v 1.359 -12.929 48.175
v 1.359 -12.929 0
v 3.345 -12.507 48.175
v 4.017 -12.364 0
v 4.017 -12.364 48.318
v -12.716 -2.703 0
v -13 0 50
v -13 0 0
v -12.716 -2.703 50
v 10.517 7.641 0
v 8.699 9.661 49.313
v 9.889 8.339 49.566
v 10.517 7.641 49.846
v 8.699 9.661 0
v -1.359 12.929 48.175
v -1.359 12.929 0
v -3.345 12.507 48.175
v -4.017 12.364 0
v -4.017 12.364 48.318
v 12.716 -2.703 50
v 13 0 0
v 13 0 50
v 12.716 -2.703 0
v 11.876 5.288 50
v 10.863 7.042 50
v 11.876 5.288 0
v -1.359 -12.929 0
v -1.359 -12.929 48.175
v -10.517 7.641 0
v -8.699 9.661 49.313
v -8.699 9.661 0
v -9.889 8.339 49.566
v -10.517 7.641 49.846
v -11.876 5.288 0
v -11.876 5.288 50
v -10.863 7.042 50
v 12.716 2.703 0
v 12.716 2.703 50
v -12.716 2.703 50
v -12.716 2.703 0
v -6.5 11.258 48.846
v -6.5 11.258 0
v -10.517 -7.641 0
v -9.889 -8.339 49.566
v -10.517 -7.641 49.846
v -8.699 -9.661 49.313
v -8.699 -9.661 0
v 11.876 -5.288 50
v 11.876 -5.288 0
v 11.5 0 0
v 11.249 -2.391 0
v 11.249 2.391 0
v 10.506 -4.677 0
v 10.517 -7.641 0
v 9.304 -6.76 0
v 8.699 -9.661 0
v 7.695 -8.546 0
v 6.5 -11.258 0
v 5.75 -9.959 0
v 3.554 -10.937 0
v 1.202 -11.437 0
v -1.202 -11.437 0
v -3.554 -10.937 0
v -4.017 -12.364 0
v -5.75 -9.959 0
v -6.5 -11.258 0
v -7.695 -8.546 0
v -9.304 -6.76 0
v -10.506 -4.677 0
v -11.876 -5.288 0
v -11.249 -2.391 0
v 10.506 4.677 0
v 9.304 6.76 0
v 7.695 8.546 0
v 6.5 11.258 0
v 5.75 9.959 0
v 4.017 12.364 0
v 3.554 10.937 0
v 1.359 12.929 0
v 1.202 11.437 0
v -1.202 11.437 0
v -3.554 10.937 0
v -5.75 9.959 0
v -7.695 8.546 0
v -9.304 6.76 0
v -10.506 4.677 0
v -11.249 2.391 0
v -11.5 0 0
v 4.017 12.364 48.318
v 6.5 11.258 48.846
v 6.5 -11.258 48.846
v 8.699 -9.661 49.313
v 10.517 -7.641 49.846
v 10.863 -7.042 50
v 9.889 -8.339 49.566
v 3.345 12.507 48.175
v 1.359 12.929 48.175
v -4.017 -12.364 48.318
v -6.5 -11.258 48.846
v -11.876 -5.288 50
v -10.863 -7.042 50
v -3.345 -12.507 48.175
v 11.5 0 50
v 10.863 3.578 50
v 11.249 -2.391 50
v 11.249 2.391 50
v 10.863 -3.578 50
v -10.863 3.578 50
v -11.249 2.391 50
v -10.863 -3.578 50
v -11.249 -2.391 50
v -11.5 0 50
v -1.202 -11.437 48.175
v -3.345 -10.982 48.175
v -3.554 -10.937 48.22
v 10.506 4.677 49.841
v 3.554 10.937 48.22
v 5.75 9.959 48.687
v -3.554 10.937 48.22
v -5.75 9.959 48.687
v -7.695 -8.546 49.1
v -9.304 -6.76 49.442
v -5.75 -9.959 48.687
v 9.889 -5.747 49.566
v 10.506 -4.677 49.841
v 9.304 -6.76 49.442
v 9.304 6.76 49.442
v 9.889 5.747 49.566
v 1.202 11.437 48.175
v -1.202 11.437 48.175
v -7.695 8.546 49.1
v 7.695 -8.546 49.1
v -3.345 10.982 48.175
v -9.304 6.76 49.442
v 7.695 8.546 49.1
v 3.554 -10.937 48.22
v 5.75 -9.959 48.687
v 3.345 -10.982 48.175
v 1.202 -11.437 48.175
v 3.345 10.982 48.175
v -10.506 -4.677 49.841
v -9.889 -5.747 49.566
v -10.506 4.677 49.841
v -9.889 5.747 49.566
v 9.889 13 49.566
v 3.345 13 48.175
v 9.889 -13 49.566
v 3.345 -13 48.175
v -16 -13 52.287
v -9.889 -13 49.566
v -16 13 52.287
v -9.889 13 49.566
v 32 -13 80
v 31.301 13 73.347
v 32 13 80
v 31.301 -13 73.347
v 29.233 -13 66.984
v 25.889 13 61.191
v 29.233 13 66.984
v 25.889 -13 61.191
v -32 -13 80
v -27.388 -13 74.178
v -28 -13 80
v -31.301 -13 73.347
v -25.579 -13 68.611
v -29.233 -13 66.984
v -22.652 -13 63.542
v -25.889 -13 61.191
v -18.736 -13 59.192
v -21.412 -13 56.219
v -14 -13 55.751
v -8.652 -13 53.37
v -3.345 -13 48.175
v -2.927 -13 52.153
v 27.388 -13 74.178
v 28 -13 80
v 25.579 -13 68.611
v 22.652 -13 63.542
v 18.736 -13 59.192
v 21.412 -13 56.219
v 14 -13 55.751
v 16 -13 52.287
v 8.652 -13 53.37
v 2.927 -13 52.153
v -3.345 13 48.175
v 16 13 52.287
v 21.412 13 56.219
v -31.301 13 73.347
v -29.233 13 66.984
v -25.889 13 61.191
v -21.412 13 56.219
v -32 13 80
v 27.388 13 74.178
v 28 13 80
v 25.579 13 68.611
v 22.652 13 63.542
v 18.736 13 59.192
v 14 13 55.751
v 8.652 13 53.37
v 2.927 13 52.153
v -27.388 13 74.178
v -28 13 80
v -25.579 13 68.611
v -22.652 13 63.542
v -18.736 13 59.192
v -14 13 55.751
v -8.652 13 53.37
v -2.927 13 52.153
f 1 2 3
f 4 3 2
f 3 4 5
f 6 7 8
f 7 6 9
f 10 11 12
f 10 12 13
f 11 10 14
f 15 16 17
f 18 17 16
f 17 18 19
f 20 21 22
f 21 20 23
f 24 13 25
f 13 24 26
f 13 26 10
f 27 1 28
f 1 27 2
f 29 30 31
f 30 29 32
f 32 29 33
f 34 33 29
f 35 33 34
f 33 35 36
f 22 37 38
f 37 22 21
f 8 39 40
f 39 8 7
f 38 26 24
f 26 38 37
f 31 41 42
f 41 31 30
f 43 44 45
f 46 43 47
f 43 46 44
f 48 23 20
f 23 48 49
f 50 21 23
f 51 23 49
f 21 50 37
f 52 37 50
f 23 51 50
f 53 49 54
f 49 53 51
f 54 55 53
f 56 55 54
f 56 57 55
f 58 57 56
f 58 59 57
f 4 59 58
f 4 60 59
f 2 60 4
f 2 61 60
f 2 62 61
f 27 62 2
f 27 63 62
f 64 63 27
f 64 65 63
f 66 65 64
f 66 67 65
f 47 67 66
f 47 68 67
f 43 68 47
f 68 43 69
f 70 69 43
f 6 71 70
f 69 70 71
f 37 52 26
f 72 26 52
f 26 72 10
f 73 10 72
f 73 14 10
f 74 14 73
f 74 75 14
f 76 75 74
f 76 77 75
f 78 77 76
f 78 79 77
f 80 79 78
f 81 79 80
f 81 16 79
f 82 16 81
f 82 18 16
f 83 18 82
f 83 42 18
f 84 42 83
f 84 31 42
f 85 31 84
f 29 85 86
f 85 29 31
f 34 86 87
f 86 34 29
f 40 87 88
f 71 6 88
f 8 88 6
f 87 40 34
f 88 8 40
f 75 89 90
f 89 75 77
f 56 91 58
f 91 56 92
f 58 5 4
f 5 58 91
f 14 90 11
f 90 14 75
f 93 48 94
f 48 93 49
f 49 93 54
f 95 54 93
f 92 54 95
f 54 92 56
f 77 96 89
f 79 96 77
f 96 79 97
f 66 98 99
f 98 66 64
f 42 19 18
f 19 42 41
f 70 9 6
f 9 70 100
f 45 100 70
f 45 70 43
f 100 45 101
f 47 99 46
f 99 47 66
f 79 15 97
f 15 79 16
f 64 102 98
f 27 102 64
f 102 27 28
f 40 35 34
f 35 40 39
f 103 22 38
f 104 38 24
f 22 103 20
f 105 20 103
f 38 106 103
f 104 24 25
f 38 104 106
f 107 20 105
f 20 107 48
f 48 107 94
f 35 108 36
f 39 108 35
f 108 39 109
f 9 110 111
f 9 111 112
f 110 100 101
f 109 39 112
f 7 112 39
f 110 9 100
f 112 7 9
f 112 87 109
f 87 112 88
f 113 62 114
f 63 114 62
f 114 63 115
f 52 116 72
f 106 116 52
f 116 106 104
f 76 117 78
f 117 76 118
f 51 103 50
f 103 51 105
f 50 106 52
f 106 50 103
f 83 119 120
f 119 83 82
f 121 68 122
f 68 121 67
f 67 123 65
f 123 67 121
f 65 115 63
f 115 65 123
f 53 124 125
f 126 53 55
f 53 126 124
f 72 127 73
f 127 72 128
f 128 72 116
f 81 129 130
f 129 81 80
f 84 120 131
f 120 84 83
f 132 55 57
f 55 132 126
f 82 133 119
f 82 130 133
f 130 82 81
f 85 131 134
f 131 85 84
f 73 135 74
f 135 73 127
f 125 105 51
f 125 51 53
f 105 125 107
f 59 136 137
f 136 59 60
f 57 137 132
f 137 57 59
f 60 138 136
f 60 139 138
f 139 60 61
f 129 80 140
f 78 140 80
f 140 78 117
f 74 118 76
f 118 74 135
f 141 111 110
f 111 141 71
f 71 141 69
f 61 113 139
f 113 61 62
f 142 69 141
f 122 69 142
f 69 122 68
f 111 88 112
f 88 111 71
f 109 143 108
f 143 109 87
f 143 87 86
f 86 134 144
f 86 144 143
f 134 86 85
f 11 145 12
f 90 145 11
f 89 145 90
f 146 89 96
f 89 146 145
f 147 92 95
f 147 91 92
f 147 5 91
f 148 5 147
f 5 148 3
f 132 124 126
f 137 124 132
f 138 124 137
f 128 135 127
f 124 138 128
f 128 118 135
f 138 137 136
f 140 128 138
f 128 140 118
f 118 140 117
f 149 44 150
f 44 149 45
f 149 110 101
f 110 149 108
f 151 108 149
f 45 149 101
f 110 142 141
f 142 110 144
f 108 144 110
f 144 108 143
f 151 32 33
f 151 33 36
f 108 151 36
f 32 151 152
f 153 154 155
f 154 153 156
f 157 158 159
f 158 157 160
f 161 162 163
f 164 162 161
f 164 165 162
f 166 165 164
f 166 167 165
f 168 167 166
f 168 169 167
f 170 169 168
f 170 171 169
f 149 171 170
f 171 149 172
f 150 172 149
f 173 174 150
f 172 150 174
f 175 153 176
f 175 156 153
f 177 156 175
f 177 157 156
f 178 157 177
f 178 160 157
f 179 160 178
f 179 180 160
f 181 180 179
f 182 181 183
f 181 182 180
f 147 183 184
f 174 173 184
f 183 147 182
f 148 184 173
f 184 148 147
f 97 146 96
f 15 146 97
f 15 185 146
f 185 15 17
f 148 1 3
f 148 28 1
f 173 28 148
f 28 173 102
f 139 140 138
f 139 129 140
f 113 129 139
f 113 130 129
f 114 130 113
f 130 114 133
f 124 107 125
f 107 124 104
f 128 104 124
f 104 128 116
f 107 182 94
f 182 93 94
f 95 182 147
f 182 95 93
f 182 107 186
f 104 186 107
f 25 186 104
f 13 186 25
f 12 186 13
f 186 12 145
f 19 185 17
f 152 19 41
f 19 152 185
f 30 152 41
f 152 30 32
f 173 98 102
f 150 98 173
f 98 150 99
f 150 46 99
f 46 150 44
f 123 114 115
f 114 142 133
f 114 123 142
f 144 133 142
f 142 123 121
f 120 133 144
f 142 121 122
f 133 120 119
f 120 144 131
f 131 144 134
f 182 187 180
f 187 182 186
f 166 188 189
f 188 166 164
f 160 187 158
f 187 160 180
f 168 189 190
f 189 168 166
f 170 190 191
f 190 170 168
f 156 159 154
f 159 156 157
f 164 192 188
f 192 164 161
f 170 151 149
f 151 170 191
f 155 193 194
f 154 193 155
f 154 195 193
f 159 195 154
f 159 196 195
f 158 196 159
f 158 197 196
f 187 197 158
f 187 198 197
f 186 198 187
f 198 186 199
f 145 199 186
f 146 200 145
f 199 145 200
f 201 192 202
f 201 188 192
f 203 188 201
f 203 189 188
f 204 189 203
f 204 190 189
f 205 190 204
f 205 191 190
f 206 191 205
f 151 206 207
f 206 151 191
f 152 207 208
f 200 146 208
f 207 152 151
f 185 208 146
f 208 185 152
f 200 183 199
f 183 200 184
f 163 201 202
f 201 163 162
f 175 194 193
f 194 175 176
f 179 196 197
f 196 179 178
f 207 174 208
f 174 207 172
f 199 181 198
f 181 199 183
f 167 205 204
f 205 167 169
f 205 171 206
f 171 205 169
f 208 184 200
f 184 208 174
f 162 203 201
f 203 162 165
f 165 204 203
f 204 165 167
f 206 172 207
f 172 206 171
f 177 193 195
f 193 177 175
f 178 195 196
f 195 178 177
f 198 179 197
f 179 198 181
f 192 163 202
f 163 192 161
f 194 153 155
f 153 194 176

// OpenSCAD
// configurable values

tubediam=26;
tubethickness=3;
tubelength=50;

cupdiam=64;
cupthickness=8;
cuplength=26;

// derived values
tubeouterradius=tubediam/2;
tubeinnerradius=tubeouterradius-(tubethickness/2);
cupouterradius=cupdiam/2;
cupinnerradius=cupouterradius-(cupthickness/2);

// the tube
difference() {
cylinder(h=tubelength,r=tubeouterradius);
translate([0,0,-1]) cylinder(h=tubelength+2, r=tubeinnerradius);
}

// the cup
rotate([90,0,0])
translate([0,tubelength+cupouterradius-2,-tubeouterradius]) {
    
difference() {
    cylinder(h=cuplength, r=cupouterradius);
    translate([0,0,-3]) cylinder(h=cuplength+5, r= cupinnerradius);
    translate([-cupdiam/2,0,0])
    cube(cupdiam);
}

}
